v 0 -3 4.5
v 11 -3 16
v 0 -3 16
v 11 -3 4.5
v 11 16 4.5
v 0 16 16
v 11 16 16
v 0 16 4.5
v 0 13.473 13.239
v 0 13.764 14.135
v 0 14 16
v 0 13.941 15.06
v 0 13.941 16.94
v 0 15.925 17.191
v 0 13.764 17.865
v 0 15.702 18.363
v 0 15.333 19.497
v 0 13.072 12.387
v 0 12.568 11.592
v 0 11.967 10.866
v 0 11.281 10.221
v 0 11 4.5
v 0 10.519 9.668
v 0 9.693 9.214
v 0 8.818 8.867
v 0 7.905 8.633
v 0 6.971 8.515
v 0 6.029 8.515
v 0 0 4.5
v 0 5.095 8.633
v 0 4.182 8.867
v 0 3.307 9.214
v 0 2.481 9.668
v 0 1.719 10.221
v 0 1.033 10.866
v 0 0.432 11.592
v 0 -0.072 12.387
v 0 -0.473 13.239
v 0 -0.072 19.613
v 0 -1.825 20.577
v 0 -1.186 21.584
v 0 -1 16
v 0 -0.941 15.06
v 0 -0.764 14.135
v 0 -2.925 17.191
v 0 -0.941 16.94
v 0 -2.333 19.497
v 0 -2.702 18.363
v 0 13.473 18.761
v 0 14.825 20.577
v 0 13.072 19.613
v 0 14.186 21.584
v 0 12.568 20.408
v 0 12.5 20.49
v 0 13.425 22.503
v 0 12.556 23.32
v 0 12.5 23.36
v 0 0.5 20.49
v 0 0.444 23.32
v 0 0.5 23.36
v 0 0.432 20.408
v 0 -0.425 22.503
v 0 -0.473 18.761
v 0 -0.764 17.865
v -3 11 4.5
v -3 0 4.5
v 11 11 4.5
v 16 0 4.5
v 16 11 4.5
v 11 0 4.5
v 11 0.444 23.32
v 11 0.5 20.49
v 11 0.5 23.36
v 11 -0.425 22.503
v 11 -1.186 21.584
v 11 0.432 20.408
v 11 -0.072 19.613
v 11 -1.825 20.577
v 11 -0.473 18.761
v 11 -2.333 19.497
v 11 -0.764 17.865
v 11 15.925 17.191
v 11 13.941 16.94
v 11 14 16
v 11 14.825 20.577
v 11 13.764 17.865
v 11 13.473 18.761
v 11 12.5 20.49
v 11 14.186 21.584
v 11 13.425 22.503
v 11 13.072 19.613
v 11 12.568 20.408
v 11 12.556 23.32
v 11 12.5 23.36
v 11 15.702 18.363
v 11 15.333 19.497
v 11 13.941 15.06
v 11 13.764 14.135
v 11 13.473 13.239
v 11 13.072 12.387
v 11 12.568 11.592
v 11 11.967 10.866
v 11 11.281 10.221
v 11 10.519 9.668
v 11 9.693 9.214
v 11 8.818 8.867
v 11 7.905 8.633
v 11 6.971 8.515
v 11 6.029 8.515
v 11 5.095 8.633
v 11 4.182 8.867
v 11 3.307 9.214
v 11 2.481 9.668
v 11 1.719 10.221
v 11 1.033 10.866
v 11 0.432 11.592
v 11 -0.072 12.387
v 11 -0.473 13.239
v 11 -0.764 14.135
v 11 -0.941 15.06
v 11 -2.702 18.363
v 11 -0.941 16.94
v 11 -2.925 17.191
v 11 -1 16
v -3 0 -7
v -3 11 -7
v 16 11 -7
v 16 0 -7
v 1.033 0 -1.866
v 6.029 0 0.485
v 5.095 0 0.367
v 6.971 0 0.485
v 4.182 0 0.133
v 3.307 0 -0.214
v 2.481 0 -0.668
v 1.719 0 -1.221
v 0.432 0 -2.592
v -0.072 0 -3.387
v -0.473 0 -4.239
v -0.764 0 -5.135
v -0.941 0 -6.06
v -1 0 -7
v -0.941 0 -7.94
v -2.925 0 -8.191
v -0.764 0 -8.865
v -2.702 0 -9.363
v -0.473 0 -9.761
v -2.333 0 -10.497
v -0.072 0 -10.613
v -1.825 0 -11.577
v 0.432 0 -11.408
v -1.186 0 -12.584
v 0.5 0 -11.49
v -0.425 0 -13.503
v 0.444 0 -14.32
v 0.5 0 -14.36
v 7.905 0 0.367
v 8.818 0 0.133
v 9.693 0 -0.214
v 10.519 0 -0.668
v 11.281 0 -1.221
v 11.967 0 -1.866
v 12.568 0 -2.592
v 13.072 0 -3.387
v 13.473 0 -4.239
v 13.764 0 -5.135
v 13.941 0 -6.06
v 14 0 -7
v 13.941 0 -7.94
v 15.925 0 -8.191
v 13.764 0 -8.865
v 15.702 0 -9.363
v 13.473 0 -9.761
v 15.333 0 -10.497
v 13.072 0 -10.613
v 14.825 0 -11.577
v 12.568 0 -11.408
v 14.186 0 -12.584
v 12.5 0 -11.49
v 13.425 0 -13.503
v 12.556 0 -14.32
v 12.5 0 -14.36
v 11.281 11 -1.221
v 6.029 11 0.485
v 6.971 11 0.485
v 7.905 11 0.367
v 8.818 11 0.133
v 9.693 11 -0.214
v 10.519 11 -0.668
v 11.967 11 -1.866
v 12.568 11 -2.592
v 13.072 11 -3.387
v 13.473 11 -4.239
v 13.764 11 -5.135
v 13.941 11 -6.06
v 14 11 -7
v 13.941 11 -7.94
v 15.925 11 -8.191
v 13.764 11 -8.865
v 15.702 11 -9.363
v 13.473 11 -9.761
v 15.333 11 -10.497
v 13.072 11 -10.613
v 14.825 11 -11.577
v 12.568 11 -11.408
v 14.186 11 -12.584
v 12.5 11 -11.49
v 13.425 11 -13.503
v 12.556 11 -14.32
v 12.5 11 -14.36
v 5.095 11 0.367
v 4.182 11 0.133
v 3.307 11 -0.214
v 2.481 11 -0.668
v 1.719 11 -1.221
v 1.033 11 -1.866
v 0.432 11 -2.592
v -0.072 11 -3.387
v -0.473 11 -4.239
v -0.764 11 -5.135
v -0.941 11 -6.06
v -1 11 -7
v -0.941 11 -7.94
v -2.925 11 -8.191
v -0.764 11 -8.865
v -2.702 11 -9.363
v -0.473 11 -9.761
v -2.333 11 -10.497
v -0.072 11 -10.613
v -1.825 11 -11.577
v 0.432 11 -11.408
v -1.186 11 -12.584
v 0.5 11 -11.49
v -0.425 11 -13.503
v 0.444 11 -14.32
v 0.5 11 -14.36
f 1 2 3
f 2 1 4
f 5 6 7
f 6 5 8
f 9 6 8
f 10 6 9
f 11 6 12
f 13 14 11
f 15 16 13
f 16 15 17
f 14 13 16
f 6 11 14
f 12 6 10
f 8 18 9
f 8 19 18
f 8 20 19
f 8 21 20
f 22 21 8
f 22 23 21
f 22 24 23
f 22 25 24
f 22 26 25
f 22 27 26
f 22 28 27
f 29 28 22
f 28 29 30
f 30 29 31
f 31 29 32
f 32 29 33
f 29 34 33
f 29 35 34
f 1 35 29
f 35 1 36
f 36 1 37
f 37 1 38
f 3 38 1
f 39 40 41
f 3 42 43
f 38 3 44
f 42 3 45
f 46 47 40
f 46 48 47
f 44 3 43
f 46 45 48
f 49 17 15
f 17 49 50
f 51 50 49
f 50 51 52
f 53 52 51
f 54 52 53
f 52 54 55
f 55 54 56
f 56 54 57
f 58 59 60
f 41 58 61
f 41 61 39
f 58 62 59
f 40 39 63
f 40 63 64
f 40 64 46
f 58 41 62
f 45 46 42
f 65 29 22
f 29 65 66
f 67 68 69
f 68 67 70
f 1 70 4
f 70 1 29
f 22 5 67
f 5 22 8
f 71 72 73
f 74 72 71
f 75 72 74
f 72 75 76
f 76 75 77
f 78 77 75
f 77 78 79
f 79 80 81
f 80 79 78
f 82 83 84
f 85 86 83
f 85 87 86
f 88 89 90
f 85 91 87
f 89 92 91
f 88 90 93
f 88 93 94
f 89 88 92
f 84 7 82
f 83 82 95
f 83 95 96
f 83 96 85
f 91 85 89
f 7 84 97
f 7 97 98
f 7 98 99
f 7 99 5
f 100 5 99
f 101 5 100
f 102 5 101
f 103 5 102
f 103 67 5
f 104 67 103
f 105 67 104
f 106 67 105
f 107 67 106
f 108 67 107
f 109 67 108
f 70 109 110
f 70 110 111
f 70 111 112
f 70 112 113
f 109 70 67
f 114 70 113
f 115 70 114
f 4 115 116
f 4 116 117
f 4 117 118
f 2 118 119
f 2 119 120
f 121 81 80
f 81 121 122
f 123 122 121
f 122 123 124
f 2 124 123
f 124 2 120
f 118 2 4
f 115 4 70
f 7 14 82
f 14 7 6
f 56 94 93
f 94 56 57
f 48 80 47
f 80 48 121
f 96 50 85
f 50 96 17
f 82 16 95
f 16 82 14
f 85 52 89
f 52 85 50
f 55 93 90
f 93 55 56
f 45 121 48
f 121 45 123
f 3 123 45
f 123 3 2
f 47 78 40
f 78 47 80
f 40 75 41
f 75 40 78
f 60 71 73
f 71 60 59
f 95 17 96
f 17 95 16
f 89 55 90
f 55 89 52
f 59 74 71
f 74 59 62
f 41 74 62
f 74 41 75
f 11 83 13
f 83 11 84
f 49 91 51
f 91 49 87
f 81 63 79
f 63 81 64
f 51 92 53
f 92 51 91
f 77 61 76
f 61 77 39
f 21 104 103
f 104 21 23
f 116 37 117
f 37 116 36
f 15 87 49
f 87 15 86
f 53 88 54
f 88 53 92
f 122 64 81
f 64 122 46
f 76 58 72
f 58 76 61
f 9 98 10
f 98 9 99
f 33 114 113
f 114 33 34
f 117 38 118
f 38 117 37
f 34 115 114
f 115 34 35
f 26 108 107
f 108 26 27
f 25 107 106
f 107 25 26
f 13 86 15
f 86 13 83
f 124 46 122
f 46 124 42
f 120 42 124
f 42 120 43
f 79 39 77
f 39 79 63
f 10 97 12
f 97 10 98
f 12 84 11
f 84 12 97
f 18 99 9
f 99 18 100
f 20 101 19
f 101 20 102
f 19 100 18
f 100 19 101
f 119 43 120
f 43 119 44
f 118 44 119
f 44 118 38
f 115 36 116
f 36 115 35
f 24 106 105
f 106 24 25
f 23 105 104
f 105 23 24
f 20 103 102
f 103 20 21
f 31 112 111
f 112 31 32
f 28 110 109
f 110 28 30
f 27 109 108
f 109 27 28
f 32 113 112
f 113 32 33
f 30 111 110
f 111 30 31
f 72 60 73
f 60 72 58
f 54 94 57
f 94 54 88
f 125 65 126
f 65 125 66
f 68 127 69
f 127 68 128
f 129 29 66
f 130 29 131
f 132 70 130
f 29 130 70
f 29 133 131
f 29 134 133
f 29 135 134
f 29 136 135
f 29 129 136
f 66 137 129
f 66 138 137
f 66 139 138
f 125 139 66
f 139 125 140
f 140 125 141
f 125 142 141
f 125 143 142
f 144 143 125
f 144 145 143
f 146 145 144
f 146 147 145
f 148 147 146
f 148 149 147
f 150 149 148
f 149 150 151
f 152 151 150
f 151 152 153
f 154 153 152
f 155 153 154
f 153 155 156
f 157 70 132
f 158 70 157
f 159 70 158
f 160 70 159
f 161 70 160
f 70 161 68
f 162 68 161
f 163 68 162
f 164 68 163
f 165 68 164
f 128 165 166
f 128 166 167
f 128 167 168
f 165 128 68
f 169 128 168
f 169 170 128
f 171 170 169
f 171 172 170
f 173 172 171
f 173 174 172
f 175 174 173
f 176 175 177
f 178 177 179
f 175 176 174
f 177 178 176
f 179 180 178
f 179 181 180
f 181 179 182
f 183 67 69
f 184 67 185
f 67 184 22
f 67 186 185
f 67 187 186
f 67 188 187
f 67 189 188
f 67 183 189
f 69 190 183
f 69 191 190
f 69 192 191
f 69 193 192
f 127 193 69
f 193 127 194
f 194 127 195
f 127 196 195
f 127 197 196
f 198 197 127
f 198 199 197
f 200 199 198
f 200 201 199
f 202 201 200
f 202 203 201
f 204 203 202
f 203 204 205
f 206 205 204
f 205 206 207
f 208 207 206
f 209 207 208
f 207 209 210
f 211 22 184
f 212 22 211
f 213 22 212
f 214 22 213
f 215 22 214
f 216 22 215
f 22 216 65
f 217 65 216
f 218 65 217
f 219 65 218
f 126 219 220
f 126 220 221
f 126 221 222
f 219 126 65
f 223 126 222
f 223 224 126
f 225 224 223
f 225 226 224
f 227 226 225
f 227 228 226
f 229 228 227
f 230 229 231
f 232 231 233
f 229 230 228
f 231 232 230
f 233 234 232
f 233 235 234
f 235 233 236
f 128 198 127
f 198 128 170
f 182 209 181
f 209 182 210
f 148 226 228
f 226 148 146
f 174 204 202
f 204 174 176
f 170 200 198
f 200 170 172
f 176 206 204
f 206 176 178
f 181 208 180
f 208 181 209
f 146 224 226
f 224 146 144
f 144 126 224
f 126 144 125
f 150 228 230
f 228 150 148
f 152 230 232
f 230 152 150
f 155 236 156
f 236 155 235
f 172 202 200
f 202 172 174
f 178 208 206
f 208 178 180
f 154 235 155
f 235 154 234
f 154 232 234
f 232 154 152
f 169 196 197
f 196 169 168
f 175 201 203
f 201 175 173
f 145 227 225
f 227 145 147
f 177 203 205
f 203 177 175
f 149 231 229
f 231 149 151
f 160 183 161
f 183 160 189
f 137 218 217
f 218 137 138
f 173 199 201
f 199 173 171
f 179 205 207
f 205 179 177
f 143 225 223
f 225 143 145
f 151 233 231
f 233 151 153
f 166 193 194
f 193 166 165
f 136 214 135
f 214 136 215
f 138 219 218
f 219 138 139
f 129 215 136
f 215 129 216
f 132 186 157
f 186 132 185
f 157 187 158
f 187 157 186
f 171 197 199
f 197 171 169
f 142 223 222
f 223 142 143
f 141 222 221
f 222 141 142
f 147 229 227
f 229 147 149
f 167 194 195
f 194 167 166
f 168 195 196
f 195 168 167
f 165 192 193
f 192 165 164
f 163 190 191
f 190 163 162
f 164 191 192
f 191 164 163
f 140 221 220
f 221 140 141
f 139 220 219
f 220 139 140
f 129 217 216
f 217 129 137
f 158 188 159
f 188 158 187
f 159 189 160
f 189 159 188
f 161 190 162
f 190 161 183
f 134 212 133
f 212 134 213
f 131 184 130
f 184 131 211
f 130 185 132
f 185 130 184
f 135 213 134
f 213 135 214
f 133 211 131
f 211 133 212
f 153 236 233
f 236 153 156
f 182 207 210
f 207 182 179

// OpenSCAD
channel_width =11;
channel_depth = 3;
slot_width = 6;
slot_depth = 1.5;
clip_diameter = 15;
clip_width = channel_width;
clip_standoff = 4;

top_width = 10;
top_depth = 2;

a = channel_width / 2;
b = slot_width / 2;
c = clip_diameter / 2;


module base() {
	difference() {
		union() {
			cube([a, a, channel_depth]);
			translate([a, a, 0]) {
				cube([a, a, channel_depth]);
				cylinder(channel_depth, a, a, $fn=50);
			}

			translate([a, a, channel_depth]) cylinder(slot_depth, b, b, $fn=50);
		}
		translate([-0.5, -b, -0.5]) cube([2 *a + 1, a, channel_depth + 1]);
		translate([-0.5, a + b, -0.5]) cube([2 *a + 1, a, channel_depth + 1]);
	}
}


module top() {
	translate([-(clip_diameter / 2 + 1), -clip_width / 2, 0]) difference() {
		union() {
			cube([clip_diameter + 4, clip_width, clip_diameter / 2 + clip_standoff]);
			translate([c + 2, clip_width, clip_diameter / 2 + clip_standoff]) rotate([90, 0 ,0]) cylinder(clip_width, c + 2, c + 2, $fn = 50);
		}
		union() {
			translate([c + 2, clip_width + 0.5, clip_diameter / 2 + clip_standoff]) rotate([90, 0 ,0]) cylinder(clip_width + 1, c, c, $fn = 50);
			translate([clip_diameter / 6 + 1, -0.5, clip_diameter / 2 + clip_standoff]) cube([clip_diameter * 2/3+2, clip_width + 1, clip_diameter]);
		}
	}
}

//base();
translate([a, a, channel_depth + slot_depth]) rotate([0, 0, 90]) top();
translate([a, a, channel_depth + slot_depth]) rotate([0, 180, 180]) top();
